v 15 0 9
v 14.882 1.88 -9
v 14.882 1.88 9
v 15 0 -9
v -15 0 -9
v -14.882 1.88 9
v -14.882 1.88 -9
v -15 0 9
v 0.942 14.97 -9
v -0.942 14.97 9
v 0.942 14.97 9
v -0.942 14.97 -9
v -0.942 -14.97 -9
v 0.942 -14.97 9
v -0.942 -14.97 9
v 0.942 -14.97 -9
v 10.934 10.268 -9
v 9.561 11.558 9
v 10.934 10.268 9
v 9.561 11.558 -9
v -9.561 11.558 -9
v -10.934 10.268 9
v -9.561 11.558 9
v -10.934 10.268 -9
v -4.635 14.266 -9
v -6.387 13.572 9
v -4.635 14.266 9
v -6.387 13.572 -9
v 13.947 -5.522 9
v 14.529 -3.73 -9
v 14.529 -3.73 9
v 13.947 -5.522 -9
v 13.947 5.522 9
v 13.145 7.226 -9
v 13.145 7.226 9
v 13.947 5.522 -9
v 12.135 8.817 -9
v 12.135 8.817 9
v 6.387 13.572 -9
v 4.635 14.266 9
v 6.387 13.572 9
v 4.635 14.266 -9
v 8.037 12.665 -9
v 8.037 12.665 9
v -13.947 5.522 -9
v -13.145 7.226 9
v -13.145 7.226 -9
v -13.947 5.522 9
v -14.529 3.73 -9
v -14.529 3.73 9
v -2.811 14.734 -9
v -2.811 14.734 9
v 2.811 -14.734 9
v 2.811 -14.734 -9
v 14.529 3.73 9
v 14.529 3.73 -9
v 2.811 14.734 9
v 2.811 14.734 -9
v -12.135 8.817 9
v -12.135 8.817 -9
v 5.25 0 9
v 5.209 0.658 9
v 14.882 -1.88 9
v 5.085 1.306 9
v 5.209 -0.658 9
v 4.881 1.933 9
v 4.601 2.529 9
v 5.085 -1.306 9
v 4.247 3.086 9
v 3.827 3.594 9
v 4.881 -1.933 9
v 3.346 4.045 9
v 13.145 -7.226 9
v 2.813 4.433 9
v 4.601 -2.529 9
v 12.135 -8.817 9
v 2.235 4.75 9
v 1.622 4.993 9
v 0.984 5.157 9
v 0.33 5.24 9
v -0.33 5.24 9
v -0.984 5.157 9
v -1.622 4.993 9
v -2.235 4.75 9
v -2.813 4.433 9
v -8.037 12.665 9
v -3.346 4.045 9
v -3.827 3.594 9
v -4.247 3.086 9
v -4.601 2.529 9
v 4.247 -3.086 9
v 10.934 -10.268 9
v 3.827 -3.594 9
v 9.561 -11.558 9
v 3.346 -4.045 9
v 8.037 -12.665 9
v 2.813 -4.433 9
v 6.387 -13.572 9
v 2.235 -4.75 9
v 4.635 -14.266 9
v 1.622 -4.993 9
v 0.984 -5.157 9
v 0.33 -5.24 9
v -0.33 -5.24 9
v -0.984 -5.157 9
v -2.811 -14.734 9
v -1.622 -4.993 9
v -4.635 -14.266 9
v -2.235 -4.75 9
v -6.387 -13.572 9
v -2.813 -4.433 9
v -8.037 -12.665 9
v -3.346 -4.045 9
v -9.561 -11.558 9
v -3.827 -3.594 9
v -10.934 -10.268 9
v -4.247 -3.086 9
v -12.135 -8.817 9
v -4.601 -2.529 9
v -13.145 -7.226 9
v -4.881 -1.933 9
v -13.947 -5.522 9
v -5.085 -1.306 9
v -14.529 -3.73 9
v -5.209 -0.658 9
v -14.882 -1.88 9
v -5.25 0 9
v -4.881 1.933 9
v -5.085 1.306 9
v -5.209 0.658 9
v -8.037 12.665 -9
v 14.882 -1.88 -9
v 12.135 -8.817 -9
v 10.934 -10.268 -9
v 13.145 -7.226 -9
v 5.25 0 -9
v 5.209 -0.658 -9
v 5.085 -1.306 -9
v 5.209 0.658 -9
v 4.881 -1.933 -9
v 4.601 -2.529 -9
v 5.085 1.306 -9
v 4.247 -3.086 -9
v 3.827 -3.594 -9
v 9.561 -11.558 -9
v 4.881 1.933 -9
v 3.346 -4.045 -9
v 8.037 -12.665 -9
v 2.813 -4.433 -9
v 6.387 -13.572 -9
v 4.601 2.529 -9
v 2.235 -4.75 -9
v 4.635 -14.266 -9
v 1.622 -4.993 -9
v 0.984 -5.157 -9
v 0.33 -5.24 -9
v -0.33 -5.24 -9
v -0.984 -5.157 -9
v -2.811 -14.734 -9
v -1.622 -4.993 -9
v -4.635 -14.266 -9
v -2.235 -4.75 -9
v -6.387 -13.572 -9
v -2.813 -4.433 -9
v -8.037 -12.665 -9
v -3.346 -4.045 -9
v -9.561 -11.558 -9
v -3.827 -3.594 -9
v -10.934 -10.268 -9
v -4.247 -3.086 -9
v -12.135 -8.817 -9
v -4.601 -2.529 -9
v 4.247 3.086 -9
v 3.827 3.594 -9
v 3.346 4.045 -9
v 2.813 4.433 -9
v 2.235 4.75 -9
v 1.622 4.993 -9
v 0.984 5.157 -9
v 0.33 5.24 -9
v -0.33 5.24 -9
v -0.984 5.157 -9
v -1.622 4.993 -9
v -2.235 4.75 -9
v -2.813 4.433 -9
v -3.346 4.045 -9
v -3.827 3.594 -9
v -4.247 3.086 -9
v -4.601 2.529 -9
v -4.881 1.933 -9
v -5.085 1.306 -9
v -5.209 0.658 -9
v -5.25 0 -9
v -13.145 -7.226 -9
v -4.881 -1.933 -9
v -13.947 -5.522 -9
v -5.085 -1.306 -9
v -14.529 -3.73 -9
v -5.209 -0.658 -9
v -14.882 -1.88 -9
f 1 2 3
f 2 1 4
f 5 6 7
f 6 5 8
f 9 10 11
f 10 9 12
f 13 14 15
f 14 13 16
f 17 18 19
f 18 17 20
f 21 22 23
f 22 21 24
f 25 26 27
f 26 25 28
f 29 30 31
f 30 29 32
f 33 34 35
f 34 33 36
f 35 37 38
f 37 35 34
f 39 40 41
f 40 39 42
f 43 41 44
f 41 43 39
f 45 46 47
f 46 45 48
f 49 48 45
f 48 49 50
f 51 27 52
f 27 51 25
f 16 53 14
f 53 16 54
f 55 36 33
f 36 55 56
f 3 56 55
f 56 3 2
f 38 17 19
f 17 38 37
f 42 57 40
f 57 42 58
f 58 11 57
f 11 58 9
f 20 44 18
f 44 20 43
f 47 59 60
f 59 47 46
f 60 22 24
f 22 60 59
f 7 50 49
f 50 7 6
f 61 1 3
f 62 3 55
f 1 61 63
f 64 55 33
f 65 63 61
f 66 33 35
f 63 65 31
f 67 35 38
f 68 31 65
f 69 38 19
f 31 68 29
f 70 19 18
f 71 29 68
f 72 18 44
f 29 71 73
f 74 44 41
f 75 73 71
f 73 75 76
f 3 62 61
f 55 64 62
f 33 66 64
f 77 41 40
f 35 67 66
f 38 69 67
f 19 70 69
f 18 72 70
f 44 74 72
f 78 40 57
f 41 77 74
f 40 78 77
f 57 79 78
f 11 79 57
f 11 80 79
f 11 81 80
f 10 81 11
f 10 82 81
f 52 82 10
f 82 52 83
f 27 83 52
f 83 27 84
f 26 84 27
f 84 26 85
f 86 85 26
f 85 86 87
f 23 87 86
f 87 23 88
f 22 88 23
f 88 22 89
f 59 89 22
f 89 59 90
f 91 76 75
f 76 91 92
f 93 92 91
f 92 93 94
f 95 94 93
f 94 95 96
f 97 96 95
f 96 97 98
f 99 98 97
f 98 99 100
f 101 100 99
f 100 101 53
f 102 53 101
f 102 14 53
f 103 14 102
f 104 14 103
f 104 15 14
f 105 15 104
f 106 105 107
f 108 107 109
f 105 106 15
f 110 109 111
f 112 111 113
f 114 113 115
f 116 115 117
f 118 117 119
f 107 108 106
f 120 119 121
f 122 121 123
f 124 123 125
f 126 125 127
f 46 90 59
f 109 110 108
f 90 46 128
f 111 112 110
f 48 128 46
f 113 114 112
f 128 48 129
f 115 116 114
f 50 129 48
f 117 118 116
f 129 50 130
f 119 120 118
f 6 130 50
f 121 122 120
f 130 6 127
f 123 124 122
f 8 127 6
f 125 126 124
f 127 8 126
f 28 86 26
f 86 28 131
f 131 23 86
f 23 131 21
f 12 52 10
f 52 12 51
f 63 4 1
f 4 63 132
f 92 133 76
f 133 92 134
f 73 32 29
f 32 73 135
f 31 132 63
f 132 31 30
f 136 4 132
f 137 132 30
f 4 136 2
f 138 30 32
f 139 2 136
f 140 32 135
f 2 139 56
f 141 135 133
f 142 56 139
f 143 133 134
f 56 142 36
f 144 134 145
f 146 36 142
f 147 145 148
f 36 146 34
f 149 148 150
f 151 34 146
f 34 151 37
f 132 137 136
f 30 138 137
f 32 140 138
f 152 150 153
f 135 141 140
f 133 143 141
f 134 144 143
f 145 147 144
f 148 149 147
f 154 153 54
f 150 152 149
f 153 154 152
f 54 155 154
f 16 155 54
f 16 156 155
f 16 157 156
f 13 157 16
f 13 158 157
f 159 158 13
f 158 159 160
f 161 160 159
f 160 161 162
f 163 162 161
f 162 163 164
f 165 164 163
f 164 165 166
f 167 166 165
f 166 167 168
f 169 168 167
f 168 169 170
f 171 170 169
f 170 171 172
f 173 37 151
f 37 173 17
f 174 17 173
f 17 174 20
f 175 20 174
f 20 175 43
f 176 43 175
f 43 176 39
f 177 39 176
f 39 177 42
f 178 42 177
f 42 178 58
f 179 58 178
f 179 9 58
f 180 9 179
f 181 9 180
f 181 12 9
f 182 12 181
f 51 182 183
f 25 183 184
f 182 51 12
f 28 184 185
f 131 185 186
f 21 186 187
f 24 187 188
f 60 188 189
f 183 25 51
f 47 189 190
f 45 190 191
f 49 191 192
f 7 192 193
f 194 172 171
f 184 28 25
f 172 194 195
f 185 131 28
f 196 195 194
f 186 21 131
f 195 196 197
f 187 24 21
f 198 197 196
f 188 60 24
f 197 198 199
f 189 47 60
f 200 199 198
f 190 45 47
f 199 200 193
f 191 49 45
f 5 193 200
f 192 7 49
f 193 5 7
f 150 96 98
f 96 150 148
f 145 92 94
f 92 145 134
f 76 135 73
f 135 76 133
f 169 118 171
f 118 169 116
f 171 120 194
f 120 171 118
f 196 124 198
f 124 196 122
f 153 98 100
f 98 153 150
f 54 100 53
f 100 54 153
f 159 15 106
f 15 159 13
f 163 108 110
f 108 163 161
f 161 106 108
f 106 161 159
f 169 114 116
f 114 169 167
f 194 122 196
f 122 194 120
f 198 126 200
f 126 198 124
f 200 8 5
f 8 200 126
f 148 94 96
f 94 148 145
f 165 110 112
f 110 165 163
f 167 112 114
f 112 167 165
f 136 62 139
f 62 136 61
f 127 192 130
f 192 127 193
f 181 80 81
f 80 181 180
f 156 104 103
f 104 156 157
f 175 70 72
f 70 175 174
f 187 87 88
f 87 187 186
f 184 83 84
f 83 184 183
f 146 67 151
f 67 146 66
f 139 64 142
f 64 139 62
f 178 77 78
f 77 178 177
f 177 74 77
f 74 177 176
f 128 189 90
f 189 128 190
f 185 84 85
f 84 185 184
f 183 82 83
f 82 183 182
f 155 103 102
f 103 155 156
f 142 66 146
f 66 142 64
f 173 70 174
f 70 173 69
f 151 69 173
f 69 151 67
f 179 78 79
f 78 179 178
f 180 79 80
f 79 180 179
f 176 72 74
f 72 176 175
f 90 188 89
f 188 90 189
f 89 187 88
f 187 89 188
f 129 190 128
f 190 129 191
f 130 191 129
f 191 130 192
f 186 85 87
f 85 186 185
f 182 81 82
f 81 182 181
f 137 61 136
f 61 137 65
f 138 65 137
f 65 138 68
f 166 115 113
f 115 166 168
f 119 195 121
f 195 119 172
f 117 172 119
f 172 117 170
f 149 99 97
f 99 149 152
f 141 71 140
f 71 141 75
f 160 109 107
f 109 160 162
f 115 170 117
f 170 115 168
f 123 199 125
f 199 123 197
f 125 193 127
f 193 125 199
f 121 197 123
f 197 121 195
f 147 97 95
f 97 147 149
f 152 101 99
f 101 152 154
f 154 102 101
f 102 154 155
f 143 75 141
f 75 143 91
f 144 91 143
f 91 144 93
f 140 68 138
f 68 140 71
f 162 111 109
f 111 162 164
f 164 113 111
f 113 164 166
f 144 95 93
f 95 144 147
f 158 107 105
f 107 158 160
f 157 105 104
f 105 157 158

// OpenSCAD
$fn = 50;


difference() {
	union() {
		translate(v = [0, 0, -9.0000000000]) {
			cylinder(h = 18, r = 15.0000000000);
		}
	}
	union() {
		translate(v = [0, 0, -100.0000000000]) {
			cylinder(h = 200, r = 5.2500000000);
		}
	}
}
